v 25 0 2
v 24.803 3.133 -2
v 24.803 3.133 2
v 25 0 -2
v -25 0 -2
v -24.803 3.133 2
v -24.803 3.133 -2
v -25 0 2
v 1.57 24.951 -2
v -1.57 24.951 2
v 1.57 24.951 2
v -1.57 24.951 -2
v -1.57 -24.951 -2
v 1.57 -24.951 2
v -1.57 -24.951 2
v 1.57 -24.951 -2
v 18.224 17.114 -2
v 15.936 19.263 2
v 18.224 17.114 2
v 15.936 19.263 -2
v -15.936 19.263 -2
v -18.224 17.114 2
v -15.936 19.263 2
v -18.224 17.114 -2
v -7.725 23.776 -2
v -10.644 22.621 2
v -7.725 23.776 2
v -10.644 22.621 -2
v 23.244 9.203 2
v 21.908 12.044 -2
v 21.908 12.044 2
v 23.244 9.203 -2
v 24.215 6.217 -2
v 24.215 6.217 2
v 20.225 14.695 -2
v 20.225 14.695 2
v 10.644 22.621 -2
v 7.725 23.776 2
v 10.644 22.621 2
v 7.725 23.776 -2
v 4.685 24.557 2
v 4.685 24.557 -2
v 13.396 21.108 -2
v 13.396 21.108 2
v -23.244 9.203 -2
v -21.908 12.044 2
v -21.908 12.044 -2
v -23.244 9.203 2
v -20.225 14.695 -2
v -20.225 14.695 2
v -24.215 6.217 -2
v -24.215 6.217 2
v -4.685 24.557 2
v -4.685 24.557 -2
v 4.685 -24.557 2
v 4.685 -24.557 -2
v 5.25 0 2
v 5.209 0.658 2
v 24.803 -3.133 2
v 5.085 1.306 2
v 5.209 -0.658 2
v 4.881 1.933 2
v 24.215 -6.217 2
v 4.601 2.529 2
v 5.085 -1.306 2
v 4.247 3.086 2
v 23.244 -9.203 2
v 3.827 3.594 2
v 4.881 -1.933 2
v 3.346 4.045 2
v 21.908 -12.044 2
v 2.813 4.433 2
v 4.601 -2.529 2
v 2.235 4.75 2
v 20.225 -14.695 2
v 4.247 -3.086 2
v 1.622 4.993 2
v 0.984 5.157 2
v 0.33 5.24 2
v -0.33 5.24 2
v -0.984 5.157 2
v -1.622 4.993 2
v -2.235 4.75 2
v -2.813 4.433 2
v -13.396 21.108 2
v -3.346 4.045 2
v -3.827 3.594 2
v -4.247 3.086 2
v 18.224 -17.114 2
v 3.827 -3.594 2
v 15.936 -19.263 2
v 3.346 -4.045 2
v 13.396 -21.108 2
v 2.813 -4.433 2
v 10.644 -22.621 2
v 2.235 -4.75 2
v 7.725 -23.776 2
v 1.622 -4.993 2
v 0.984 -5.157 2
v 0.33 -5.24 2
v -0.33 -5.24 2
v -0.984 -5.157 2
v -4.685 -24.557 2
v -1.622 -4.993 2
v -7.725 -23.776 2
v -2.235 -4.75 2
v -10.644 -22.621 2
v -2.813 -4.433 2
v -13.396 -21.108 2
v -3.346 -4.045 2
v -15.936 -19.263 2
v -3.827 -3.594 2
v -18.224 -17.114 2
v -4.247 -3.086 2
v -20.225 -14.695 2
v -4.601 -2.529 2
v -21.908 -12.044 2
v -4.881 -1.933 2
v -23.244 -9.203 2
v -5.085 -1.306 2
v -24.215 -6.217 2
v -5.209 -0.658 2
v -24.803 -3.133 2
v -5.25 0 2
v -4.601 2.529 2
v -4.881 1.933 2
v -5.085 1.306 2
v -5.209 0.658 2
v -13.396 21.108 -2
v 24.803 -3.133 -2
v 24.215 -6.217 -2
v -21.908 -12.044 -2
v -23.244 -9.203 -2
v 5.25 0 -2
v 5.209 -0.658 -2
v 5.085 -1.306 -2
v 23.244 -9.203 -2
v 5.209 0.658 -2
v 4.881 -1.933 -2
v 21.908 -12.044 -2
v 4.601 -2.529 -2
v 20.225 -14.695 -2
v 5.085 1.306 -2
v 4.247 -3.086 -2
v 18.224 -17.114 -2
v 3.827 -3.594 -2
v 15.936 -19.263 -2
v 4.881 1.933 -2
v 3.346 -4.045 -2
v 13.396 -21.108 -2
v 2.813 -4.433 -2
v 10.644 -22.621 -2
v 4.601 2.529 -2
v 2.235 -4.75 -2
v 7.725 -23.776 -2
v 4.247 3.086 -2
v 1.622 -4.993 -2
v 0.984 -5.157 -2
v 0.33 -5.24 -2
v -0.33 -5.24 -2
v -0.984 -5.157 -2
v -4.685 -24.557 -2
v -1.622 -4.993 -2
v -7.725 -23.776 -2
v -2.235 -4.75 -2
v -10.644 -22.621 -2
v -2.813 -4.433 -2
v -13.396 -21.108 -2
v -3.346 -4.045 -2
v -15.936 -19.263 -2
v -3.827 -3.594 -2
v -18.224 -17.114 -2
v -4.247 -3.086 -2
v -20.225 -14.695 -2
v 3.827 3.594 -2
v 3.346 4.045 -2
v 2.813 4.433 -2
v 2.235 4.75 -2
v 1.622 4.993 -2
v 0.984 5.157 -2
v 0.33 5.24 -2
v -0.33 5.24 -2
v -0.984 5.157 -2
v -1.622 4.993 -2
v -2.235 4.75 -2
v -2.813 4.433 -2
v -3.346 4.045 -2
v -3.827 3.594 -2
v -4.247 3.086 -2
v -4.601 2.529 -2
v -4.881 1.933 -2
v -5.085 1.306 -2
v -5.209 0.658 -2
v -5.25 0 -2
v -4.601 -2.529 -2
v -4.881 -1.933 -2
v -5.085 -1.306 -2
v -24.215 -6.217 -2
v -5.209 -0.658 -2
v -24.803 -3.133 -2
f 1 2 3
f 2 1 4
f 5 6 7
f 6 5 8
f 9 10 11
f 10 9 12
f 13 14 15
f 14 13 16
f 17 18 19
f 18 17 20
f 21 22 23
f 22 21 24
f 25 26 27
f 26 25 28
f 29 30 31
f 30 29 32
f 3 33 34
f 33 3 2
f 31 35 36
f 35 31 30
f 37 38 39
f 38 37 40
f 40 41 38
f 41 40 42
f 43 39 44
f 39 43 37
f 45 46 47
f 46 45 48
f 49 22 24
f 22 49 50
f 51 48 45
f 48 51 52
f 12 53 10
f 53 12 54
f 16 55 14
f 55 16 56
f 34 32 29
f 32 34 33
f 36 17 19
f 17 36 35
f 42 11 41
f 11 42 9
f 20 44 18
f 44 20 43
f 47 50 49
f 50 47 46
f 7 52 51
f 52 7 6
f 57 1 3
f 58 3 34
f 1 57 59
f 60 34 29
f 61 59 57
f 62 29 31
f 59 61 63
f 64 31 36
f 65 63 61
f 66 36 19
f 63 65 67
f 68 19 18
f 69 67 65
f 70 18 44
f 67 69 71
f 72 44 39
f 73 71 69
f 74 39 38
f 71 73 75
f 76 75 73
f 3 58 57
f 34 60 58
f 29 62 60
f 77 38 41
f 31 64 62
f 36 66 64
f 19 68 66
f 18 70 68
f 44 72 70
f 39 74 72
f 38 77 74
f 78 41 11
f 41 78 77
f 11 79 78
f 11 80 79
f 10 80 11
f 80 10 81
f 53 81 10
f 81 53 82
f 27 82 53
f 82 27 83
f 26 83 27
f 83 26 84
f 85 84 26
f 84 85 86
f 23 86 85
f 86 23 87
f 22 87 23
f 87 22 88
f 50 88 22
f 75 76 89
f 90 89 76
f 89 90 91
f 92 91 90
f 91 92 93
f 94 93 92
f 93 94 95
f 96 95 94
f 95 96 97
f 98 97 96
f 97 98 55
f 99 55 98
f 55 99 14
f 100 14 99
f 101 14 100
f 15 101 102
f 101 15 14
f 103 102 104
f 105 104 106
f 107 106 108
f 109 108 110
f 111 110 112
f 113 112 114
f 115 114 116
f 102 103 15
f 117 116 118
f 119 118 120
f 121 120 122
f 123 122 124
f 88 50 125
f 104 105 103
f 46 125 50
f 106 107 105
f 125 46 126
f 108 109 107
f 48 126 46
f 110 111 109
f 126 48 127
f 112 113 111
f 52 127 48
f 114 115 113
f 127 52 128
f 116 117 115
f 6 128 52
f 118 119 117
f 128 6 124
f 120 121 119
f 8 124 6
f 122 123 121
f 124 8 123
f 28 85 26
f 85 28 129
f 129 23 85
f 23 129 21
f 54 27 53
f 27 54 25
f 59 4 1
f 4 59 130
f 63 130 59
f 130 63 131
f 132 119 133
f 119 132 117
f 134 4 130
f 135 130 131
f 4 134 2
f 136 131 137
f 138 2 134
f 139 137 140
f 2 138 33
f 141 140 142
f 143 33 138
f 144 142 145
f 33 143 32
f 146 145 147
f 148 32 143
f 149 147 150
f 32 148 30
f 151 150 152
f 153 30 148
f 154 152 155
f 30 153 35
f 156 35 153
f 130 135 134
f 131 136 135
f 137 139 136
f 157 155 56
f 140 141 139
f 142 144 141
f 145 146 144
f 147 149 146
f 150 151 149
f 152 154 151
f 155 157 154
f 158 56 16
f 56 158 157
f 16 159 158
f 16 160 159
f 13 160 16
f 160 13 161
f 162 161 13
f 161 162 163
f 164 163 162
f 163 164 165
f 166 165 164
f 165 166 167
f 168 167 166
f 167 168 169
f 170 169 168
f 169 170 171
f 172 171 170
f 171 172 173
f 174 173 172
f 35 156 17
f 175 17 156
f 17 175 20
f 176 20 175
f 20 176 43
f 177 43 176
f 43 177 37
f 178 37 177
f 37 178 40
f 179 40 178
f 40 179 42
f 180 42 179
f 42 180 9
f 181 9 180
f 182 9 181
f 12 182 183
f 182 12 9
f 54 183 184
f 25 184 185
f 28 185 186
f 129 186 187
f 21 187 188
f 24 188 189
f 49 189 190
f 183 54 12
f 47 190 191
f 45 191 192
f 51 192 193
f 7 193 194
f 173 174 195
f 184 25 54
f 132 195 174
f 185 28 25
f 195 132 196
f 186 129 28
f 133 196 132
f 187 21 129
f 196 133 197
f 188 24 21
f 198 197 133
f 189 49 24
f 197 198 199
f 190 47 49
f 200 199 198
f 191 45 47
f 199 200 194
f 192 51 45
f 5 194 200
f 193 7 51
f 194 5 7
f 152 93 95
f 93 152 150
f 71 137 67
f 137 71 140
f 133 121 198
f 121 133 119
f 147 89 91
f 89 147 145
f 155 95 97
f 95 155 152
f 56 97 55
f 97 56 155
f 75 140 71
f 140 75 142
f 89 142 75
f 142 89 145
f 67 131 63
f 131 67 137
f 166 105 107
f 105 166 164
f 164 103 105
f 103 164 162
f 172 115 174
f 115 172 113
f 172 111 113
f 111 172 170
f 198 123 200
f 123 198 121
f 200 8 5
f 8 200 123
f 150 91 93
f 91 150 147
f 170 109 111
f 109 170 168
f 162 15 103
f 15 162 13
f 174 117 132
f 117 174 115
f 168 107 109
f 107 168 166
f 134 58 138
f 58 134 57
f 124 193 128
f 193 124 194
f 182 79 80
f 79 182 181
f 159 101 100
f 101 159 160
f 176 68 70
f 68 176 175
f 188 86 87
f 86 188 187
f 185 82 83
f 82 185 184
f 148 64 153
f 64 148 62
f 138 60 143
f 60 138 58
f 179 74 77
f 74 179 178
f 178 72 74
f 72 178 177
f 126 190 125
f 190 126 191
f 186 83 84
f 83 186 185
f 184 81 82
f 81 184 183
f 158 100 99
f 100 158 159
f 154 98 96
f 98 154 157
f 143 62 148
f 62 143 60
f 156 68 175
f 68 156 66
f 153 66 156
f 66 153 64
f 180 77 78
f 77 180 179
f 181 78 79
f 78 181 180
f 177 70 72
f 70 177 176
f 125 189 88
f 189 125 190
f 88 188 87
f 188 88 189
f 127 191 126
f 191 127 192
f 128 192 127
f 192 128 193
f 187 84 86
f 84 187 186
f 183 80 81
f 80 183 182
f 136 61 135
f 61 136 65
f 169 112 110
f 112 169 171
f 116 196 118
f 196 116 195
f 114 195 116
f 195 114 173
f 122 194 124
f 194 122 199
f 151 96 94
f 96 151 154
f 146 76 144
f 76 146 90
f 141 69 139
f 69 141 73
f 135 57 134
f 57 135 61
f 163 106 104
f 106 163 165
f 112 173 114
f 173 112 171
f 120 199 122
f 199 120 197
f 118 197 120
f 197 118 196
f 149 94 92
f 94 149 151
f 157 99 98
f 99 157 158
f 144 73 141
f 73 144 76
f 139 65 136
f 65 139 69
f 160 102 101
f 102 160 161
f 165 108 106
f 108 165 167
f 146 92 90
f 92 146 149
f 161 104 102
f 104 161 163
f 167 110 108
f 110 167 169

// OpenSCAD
$fn = 50;


difference() {
	union() {
		translate(v = [0, 0, -2.0000000000]) {
			cylinder(h = 4, r = 25.0000000000);
		}
	}
	union() {
		translate(v = [0, 0, -100.0000000000]) {
			cylinder(h = 200, r = 5.2500000000);
		}
	}
}
